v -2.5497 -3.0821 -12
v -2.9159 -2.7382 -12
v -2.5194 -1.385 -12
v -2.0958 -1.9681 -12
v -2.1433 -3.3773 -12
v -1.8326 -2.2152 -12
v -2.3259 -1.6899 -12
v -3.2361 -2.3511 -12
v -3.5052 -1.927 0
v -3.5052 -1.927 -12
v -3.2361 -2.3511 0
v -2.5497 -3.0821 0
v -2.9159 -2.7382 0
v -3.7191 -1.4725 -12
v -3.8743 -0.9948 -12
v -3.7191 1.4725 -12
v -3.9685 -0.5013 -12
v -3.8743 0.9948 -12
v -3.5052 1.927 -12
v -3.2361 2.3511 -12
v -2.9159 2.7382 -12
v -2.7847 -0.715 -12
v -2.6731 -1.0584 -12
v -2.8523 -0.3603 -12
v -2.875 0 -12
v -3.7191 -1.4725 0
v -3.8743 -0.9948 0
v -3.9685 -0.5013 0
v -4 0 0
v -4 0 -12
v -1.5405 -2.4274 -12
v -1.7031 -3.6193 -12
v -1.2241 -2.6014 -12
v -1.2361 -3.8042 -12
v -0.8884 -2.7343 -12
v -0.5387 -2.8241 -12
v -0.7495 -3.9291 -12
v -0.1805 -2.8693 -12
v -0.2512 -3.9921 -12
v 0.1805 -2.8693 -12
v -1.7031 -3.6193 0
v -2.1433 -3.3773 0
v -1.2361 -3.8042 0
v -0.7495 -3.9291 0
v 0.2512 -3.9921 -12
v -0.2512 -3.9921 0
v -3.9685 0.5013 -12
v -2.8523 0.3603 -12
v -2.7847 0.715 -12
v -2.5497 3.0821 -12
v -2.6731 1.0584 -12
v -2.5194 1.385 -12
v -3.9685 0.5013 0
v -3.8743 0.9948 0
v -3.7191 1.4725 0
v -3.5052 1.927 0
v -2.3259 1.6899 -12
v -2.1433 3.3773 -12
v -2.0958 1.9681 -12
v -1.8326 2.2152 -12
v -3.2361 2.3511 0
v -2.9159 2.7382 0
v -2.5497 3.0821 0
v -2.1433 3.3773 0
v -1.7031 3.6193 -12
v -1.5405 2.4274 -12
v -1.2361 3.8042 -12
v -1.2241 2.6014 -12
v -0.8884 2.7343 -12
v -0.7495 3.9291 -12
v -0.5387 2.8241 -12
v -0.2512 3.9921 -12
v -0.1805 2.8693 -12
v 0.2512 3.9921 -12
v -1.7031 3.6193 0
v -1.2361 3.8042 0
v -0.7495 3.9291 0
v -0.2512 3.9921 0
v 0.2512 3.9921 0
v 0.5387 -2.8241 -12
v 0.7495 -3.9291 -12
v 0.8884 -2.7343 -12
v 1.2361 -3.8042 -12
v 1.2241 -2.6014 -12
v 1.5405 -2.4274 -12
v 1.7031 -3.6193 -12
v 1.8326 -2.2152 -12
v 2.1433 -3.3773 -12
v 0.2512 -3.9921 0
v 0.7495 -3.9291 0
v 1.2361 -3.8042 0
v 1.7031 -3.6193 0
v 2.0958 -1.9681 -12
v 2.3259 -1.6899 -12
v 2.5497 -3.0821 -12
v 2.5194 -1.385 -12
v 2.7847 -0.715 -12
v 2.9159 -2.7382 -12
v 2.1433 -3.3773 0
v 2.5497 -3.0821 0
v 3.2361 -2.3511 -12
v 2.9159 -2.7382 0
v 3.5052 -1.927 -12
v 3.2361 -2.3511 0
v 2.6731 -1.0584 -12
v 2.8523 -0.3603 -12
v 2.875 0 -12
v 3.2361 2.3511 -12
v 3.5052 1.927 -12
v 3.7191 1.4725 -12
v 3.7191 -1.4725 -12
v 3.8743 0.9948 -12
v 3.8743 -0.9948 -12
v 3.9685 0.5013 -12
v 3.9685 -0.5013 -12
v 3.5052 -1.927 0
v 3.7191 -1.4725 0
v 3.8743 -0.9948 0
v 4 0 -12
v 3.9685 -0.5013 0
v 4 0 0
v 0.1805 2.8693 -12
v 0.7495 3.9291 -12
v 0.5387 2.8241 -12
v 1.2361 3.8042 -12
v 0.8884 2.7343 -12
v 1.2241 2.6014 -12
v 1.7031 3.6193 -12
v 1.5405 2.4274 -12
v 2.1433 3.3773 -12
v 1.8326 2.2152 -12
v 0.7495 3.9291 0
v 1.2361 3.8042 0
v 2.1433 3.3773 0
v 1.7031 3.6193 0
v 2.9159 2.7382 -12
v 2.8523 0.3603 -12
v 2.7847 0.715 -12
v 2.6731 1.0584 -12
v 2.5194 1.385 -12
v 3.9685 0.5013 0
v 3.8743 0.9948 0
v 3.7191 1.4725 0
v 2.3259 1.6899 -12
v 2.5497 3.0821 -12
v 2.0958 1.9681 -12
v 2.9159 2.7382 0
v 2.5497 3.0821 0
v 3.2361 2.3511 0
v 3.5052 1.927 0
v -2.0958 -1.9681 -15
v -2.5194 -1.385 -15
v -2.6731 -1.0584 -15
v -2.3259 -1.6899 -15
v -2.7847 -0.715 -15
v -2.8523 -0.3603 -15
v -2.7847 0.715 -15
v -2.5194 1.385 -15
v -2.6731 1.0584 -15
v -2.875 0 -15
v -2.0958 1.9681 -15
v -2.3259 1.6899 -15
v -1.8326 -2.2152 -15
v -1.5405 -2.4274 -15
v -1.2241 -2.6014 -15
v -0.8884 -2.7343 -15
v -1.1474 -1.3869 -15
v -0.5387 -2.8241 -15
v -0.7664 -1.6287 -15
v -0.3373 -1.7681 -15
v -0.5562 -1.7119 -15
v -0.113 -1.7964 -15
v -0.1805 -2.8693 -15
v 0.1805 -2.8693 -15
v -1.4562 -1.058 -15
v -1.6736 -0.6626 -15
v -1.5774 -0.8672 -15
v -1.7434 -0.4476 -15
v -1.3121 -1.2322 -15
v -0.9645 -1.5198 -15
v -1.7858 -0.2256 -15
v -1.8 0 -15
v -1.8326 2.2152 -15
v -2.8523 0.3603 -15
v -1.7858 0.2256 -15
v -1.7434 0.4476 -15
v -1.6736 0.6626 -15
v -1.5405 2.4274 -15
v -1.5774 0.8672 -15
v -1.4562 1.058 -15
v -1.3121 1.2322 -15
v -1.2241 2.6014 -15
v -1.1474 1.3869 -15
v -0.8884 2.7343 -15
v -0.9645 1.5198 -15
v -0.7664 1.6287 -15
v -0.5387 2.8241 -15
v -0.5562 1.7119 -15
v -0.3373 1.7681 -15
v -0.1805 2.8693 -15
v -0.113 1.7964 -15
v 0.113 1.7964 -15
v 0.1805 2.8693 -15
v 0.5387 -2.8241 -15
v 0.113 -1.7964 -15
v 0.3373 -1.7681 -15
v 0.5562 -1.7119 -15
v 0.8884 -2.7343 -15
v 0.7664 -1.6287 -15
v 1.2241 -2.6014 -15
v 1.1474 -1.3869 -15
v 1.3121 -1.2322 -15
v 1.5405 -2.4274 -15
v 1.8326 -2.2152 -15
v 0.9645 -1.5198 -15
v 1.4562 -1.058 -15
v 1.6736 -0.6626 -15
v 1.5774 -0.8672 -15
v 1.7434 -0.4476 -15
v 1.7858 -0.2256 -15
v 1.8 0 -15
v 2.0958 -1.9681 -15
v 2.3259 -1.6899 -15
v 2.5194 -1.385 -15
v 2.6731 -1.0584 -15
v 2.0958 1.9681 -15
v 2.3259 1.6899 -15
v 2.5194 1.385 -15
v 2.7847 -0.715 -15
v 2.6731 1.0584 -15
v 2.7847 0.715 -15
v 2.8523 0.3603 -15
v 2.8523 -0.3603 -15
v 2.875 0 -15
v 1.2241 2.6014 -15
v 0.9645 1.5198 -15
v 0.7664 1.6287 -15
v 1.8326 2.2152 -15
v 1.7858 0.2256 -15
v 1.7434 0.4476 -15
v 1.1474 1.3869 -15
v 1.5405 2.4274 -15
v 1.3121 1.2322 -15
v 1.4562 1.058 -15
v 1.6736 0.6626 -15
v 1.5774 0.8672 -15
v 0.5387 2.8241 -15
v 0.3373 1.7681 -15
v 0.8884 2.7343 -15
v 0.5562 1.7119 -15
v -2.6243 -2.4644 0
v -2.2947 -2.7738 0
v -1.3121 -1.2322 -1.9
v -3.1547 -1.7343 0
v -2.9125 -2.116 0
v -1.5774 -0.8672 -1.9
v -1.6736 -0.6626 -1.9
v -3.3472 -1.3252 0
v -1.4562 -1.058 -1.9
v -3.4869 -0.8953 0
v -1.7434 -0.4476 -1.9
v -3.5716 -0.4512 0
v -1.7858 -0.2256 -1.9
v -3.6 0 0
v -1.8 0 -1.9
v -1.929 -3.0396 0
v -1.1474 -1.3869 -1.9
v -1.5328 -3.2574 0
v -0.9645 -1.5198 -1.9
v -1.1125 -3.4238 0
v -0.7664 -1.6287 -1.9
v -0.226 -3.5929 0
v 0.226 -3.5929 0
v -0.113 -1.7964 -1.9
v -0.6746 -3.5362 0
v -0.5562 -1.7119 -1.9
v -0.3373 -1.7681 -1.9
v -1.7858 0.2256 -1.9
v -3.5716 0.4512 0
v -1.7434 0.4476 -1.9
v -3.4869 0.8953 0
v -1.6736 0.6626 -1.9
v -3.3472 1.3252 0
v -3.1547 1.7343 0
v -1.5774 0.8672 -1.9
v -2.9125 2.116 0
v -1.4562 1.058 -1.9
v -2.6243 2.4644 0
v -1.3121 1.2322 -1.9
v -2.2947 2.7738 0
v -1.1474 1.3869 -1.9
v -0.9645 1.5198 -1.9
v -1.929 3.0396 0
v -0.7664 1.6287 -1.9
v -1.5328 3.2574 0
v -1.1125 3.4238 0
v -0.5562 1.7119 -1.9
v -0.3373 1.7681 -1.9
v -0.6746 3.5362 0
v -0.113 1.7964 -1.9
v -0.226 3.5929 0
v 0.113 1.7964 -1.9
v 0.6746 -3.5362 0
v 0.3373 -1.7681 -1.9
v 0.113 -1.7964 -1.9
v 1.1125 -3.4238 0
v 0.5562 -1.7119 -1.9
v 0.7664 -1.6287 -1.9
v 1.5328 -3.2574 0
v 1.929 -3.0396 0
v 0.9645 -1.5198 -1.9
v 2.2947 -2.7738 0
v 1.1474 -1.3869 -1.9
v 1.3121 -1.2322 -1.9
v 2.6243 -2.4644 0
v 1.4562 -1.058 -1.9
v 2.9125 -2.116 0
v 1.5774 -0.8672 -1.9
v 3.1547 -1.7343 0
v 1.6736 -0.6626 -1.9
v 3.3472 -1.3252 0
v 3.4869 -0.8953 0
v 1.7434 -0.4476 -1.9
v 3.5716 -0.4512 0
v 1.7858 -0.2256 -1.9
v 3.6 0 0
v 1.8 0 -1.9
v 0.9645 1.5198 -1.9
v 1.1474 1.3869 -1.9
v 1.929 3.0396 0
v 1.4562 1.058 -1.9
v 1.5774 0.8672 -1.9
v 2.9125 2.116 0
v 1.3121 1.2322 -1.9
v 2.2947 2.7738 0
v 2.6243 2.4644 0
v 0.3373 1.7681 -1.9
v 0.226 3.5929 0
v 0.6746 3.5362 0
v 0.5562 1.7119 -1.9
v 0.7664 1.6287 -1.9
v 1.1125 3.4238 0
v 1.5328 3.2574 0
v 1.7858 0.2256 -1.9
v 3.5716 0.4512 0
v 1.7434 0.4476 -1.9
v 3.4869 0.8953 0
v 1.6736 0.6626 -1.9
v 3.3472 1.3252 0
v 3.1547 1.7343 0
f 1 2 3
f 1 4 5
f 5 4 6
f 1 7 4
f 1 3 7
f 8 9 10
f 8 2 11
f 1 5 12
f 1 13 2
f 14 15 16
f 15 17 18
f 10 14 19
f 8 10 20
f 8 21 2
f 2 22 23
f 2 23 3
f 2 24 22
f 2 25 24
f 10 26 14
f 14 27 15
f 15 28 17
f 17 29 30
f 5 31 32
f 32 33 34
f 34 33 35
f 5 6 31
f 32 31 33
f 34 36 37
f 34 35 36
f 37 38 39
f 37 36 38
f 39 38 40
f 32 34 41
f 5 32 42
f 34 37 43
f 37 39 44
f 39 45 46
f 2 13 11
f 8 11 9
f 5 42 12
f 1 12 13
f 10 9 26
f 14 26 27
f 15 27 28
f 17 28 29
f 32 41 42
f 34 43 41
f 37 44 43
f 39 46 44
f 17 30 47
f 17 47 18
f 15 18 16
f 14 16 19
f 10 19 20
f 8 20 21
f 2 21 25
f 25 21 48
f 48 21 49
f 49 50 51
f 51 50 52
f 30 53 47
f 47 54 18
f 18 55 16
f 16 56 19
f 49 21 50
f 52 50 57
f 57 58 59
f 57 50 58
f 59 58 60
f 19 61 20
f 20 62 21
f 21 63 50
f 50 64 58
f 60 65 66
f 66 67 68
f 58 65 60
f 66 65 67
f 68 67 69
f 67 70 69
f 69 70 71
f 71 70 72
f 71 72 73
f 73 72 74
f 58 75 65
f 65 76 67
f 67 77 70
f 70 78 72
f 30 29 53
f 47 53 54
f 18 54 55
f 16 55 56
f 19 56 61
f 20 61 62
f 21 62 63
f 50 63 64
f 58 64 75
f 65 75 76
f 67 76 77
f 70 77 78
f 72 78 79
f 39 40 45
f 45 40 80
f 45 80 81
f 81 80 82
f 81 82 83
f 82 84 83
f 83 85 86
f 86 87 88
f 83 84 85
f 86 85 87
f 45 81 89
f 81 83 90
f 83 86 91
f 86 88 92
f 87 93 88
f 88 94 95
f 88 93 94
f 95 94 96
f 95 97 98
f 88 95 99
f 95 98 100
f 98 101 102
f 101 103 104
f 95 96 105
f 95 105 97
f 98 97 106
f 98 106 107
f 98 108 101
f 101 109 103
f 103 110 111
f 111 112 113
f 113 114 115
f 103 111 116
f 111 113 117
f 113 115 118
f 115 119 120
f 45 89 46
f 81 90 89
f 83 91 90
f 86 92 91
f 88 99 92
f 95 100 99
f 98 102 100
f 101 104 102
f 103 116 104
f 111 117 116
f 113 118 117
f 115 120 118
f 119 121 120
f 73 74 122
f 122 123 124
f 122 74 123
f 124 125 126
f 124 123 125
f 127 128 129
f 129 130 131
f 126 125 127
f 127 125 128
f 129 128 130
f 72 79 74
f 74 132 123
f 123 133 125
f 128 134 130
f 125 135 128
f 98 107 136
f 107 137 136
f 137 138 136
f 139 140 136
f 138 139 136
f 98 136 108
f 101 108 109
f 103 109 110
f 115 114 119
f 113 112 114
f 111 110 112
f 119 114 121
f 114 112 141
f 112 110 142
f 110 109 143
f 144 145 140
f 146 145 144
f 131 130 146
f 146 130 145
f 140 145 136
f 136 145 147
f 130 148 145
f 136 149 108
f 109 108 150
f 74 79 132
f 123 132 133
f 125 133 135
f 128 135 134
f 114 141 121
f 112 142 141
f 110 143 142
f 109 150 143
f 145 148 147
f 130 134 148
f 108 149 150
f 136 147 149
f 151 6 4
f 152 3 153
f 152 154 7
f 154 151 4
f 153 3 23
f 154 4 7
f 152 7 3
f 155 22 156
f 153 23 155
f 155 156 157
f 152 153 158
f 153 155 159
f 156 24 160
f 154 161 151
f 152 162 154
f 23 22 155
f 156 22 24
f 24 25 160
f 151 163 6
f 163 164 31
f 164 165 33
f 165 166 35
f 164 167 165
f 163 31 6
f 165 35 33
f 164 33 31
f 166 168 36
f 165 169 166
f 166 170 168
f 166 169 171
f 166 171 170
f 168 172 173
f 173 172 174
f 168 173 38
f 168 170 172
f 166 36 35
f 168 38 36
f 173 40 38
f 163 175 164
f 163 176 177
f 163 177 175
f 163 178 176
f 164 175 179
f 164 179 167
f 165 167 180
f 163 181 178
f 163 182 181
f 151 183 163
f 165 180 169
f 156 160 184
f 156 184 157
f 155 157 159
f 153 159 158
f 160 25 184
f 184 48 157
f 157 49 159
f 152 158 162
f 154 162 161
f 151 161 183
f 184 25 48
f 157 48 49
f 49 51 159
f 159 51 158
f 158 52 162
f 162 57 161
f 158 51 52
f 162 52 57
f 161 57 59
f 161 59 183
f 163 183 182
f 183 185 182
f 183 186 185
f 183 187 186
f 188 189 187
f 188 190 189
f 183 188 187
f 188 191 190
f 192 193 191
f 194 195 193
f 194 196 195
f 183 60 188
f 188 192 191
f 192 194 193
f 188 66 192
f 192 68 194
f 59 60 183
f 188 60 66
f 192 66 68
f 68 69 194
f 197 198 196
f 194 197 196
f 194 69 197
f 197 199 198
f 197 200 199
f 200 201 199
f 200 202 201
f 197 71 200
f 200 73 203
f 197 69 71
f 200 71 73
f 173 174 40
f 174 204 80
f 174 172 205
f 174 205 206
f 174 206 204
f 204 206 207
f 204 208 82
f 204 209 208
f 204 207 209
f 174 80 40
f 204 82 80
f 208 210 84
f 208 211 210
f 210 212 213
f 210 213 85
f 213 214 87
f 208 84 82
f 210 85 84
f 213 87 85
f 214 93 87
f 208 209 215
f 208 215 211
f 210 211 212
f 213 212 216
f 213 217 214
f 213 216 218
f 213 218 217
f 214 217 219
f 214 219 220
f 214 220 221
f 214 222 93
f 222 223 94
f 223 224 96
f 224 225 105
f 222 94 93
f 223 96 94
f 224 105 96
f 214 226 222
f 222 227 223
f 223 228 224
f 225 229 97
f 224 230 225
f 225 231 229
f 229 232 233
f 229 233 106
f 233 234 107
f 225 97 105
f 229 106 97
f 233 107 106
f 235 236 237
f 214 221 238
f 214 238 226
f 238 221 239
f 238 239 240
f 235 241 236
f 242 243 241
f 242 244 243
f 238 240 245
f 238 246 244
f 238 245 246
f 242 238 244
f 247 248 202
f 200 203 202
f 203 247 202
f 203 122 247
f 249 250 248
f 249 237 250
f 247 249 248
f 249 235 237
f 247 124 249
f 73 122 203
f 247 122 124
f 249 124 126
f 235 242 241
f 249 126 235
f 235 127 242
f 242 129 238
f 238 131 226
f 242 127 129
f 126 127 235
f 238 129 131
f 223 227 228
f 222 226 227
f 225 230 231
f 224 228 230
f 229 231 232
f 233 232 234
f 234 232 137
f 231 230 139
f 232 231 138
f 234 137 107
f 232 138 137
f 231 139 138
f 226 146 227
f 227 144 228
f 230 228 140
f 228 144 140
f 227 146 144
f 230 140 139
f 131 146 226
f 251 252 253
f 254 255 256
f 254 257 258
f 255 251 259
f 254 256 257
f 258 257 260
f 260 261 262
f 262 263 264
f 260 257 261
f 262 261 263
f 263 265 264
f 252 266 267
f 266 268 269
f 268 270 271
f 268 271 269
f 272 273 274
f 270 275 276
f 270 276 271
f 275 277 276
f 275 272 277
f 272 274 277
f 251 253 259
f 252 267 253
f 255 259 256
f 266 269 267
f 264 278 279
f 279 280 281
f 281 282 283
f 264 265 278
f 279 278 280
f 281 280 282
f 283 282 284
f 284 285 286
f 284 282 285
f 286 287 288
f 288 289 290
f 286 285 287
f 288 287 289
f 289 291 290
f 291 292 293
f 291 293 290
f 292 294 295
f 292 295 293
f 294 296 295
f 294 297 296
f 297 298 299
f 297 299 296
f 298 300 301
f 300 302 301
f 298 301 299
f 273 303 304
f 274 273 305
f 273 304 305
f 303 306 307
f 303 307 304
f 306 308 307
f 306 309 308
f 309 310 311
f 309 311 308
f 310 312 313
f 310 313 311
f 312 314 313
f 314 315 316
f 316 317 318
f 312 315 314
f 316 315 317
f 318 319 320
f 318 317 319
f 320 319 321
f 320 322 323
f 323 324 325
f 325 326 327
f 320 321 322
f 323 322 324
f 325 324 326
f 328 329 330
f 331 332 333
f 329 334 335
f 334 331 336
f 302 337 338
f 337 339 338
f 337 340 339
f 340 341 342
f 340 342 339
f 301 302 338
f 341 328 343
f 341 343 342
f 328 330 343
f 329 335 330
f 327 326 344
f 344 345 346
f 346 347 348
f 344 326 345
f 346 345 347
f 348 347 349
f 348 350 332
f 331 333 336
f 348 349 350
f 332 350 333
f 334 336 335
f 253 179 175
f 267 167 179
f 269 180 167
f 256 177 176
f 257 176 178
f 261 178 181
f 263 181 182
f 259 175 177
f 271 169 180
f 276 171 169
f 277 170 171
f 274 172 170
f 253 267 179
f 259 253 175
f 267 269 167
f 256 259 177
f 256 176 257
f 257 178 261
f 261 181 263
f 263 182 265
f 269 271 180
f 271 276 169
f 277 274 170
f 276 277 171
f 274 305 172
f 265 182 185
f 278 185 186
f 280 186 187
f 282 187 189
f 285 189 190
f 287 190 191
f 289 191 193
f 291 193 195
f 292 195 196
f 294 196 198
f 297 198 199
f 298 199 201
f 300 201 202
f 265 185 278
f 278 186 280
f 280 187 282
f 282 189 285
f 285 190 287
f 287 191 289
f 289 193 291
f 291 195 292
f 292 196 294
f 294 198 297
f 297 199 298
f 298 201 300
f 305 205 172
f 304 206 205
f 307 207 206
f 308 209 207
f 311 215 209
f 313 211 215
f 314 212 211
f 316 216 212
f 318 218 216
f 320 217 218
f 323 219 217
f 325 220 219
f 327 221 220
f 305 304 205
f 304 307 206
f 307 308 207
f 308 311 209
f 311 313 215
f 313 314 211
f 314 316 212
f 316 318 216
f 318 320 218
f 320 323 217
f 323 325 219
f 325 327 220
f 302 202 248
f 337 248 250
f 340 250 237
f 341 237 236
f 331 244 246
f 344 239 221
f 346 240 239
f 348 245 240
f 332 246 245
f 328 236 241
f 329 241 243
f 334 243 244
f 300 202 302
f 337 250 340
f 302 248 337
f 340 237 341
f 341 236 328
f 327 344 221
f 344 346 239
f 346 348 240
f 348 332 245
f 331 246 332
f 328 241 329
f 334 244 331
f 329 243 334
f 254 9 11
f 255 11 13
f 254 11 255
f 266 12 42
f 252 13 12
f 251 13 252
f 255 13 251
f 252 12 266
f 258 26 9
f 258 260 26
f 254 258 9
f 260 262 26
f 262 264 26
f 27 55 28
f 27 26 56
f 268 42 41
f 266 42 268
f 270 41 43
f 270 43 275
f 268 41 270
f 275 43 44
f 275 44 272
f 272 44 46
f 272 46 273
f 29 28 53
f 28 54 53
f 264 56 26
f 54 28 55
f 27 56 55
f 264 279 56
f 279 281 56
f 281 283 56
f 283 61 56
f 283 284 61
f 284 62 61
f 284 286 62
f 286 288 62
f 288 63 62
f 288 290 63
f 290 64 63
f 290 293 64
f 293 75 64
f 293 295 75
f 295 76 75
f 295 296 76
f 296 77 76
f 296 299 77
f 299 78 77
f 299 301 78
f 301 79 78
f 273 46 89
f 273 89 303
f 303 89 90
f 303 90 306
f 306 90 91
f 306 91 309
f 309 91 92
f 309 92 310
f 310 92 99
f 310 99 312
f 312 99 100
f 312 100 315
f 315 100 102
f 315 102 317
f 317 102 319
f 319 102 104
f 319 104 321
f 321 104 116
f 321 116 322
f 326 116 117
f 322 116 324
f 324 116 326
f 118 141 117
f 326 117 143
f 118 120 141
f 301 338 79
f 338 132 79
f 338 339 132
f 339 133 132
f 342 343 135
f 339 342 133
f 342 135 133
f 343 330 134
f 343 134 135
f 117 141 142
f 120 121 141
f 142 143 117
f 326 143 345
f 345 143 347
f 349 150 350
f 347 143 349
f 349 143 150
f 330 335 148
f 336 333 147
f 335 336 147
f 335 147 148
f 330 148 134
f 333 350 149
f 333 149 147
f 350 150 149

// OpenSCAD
$fn = 50;

difference() {
	union() {
		translate(v = [0, 0, -12.0]) {
			cylinder(h = 15, r = 4.0);
		}
		#translate(v = [0, 0, -15.0]) {
			cylinder(h = 15, r = 2.875);
		}
	}
	union() {
		translate(v = [0, 0, 0]) {
			rotate(a = [0, 0, 0]) {
				difference() {
					union() {
						translate(v = [0, 0, -15.0]) {
							cylinder(h = 15, r = 1.5);
						}
						translate(v = [0, 0, -1.9]) {
							cylinder(h = 1.9, r1 = 1.8, r2 = 3.6);
						}
						translate(v = [0, 0, -15.0]) {
							cylinder(h = 15, r = 1.8);
						}
						translate(v = [0, 0, -15.0]) {
							cylinder(h = 15, r = 1.5);
						}
					}
					union();
				}
			}
		}
		#cylinder(h = 3, r = 5.0);
	}
}
